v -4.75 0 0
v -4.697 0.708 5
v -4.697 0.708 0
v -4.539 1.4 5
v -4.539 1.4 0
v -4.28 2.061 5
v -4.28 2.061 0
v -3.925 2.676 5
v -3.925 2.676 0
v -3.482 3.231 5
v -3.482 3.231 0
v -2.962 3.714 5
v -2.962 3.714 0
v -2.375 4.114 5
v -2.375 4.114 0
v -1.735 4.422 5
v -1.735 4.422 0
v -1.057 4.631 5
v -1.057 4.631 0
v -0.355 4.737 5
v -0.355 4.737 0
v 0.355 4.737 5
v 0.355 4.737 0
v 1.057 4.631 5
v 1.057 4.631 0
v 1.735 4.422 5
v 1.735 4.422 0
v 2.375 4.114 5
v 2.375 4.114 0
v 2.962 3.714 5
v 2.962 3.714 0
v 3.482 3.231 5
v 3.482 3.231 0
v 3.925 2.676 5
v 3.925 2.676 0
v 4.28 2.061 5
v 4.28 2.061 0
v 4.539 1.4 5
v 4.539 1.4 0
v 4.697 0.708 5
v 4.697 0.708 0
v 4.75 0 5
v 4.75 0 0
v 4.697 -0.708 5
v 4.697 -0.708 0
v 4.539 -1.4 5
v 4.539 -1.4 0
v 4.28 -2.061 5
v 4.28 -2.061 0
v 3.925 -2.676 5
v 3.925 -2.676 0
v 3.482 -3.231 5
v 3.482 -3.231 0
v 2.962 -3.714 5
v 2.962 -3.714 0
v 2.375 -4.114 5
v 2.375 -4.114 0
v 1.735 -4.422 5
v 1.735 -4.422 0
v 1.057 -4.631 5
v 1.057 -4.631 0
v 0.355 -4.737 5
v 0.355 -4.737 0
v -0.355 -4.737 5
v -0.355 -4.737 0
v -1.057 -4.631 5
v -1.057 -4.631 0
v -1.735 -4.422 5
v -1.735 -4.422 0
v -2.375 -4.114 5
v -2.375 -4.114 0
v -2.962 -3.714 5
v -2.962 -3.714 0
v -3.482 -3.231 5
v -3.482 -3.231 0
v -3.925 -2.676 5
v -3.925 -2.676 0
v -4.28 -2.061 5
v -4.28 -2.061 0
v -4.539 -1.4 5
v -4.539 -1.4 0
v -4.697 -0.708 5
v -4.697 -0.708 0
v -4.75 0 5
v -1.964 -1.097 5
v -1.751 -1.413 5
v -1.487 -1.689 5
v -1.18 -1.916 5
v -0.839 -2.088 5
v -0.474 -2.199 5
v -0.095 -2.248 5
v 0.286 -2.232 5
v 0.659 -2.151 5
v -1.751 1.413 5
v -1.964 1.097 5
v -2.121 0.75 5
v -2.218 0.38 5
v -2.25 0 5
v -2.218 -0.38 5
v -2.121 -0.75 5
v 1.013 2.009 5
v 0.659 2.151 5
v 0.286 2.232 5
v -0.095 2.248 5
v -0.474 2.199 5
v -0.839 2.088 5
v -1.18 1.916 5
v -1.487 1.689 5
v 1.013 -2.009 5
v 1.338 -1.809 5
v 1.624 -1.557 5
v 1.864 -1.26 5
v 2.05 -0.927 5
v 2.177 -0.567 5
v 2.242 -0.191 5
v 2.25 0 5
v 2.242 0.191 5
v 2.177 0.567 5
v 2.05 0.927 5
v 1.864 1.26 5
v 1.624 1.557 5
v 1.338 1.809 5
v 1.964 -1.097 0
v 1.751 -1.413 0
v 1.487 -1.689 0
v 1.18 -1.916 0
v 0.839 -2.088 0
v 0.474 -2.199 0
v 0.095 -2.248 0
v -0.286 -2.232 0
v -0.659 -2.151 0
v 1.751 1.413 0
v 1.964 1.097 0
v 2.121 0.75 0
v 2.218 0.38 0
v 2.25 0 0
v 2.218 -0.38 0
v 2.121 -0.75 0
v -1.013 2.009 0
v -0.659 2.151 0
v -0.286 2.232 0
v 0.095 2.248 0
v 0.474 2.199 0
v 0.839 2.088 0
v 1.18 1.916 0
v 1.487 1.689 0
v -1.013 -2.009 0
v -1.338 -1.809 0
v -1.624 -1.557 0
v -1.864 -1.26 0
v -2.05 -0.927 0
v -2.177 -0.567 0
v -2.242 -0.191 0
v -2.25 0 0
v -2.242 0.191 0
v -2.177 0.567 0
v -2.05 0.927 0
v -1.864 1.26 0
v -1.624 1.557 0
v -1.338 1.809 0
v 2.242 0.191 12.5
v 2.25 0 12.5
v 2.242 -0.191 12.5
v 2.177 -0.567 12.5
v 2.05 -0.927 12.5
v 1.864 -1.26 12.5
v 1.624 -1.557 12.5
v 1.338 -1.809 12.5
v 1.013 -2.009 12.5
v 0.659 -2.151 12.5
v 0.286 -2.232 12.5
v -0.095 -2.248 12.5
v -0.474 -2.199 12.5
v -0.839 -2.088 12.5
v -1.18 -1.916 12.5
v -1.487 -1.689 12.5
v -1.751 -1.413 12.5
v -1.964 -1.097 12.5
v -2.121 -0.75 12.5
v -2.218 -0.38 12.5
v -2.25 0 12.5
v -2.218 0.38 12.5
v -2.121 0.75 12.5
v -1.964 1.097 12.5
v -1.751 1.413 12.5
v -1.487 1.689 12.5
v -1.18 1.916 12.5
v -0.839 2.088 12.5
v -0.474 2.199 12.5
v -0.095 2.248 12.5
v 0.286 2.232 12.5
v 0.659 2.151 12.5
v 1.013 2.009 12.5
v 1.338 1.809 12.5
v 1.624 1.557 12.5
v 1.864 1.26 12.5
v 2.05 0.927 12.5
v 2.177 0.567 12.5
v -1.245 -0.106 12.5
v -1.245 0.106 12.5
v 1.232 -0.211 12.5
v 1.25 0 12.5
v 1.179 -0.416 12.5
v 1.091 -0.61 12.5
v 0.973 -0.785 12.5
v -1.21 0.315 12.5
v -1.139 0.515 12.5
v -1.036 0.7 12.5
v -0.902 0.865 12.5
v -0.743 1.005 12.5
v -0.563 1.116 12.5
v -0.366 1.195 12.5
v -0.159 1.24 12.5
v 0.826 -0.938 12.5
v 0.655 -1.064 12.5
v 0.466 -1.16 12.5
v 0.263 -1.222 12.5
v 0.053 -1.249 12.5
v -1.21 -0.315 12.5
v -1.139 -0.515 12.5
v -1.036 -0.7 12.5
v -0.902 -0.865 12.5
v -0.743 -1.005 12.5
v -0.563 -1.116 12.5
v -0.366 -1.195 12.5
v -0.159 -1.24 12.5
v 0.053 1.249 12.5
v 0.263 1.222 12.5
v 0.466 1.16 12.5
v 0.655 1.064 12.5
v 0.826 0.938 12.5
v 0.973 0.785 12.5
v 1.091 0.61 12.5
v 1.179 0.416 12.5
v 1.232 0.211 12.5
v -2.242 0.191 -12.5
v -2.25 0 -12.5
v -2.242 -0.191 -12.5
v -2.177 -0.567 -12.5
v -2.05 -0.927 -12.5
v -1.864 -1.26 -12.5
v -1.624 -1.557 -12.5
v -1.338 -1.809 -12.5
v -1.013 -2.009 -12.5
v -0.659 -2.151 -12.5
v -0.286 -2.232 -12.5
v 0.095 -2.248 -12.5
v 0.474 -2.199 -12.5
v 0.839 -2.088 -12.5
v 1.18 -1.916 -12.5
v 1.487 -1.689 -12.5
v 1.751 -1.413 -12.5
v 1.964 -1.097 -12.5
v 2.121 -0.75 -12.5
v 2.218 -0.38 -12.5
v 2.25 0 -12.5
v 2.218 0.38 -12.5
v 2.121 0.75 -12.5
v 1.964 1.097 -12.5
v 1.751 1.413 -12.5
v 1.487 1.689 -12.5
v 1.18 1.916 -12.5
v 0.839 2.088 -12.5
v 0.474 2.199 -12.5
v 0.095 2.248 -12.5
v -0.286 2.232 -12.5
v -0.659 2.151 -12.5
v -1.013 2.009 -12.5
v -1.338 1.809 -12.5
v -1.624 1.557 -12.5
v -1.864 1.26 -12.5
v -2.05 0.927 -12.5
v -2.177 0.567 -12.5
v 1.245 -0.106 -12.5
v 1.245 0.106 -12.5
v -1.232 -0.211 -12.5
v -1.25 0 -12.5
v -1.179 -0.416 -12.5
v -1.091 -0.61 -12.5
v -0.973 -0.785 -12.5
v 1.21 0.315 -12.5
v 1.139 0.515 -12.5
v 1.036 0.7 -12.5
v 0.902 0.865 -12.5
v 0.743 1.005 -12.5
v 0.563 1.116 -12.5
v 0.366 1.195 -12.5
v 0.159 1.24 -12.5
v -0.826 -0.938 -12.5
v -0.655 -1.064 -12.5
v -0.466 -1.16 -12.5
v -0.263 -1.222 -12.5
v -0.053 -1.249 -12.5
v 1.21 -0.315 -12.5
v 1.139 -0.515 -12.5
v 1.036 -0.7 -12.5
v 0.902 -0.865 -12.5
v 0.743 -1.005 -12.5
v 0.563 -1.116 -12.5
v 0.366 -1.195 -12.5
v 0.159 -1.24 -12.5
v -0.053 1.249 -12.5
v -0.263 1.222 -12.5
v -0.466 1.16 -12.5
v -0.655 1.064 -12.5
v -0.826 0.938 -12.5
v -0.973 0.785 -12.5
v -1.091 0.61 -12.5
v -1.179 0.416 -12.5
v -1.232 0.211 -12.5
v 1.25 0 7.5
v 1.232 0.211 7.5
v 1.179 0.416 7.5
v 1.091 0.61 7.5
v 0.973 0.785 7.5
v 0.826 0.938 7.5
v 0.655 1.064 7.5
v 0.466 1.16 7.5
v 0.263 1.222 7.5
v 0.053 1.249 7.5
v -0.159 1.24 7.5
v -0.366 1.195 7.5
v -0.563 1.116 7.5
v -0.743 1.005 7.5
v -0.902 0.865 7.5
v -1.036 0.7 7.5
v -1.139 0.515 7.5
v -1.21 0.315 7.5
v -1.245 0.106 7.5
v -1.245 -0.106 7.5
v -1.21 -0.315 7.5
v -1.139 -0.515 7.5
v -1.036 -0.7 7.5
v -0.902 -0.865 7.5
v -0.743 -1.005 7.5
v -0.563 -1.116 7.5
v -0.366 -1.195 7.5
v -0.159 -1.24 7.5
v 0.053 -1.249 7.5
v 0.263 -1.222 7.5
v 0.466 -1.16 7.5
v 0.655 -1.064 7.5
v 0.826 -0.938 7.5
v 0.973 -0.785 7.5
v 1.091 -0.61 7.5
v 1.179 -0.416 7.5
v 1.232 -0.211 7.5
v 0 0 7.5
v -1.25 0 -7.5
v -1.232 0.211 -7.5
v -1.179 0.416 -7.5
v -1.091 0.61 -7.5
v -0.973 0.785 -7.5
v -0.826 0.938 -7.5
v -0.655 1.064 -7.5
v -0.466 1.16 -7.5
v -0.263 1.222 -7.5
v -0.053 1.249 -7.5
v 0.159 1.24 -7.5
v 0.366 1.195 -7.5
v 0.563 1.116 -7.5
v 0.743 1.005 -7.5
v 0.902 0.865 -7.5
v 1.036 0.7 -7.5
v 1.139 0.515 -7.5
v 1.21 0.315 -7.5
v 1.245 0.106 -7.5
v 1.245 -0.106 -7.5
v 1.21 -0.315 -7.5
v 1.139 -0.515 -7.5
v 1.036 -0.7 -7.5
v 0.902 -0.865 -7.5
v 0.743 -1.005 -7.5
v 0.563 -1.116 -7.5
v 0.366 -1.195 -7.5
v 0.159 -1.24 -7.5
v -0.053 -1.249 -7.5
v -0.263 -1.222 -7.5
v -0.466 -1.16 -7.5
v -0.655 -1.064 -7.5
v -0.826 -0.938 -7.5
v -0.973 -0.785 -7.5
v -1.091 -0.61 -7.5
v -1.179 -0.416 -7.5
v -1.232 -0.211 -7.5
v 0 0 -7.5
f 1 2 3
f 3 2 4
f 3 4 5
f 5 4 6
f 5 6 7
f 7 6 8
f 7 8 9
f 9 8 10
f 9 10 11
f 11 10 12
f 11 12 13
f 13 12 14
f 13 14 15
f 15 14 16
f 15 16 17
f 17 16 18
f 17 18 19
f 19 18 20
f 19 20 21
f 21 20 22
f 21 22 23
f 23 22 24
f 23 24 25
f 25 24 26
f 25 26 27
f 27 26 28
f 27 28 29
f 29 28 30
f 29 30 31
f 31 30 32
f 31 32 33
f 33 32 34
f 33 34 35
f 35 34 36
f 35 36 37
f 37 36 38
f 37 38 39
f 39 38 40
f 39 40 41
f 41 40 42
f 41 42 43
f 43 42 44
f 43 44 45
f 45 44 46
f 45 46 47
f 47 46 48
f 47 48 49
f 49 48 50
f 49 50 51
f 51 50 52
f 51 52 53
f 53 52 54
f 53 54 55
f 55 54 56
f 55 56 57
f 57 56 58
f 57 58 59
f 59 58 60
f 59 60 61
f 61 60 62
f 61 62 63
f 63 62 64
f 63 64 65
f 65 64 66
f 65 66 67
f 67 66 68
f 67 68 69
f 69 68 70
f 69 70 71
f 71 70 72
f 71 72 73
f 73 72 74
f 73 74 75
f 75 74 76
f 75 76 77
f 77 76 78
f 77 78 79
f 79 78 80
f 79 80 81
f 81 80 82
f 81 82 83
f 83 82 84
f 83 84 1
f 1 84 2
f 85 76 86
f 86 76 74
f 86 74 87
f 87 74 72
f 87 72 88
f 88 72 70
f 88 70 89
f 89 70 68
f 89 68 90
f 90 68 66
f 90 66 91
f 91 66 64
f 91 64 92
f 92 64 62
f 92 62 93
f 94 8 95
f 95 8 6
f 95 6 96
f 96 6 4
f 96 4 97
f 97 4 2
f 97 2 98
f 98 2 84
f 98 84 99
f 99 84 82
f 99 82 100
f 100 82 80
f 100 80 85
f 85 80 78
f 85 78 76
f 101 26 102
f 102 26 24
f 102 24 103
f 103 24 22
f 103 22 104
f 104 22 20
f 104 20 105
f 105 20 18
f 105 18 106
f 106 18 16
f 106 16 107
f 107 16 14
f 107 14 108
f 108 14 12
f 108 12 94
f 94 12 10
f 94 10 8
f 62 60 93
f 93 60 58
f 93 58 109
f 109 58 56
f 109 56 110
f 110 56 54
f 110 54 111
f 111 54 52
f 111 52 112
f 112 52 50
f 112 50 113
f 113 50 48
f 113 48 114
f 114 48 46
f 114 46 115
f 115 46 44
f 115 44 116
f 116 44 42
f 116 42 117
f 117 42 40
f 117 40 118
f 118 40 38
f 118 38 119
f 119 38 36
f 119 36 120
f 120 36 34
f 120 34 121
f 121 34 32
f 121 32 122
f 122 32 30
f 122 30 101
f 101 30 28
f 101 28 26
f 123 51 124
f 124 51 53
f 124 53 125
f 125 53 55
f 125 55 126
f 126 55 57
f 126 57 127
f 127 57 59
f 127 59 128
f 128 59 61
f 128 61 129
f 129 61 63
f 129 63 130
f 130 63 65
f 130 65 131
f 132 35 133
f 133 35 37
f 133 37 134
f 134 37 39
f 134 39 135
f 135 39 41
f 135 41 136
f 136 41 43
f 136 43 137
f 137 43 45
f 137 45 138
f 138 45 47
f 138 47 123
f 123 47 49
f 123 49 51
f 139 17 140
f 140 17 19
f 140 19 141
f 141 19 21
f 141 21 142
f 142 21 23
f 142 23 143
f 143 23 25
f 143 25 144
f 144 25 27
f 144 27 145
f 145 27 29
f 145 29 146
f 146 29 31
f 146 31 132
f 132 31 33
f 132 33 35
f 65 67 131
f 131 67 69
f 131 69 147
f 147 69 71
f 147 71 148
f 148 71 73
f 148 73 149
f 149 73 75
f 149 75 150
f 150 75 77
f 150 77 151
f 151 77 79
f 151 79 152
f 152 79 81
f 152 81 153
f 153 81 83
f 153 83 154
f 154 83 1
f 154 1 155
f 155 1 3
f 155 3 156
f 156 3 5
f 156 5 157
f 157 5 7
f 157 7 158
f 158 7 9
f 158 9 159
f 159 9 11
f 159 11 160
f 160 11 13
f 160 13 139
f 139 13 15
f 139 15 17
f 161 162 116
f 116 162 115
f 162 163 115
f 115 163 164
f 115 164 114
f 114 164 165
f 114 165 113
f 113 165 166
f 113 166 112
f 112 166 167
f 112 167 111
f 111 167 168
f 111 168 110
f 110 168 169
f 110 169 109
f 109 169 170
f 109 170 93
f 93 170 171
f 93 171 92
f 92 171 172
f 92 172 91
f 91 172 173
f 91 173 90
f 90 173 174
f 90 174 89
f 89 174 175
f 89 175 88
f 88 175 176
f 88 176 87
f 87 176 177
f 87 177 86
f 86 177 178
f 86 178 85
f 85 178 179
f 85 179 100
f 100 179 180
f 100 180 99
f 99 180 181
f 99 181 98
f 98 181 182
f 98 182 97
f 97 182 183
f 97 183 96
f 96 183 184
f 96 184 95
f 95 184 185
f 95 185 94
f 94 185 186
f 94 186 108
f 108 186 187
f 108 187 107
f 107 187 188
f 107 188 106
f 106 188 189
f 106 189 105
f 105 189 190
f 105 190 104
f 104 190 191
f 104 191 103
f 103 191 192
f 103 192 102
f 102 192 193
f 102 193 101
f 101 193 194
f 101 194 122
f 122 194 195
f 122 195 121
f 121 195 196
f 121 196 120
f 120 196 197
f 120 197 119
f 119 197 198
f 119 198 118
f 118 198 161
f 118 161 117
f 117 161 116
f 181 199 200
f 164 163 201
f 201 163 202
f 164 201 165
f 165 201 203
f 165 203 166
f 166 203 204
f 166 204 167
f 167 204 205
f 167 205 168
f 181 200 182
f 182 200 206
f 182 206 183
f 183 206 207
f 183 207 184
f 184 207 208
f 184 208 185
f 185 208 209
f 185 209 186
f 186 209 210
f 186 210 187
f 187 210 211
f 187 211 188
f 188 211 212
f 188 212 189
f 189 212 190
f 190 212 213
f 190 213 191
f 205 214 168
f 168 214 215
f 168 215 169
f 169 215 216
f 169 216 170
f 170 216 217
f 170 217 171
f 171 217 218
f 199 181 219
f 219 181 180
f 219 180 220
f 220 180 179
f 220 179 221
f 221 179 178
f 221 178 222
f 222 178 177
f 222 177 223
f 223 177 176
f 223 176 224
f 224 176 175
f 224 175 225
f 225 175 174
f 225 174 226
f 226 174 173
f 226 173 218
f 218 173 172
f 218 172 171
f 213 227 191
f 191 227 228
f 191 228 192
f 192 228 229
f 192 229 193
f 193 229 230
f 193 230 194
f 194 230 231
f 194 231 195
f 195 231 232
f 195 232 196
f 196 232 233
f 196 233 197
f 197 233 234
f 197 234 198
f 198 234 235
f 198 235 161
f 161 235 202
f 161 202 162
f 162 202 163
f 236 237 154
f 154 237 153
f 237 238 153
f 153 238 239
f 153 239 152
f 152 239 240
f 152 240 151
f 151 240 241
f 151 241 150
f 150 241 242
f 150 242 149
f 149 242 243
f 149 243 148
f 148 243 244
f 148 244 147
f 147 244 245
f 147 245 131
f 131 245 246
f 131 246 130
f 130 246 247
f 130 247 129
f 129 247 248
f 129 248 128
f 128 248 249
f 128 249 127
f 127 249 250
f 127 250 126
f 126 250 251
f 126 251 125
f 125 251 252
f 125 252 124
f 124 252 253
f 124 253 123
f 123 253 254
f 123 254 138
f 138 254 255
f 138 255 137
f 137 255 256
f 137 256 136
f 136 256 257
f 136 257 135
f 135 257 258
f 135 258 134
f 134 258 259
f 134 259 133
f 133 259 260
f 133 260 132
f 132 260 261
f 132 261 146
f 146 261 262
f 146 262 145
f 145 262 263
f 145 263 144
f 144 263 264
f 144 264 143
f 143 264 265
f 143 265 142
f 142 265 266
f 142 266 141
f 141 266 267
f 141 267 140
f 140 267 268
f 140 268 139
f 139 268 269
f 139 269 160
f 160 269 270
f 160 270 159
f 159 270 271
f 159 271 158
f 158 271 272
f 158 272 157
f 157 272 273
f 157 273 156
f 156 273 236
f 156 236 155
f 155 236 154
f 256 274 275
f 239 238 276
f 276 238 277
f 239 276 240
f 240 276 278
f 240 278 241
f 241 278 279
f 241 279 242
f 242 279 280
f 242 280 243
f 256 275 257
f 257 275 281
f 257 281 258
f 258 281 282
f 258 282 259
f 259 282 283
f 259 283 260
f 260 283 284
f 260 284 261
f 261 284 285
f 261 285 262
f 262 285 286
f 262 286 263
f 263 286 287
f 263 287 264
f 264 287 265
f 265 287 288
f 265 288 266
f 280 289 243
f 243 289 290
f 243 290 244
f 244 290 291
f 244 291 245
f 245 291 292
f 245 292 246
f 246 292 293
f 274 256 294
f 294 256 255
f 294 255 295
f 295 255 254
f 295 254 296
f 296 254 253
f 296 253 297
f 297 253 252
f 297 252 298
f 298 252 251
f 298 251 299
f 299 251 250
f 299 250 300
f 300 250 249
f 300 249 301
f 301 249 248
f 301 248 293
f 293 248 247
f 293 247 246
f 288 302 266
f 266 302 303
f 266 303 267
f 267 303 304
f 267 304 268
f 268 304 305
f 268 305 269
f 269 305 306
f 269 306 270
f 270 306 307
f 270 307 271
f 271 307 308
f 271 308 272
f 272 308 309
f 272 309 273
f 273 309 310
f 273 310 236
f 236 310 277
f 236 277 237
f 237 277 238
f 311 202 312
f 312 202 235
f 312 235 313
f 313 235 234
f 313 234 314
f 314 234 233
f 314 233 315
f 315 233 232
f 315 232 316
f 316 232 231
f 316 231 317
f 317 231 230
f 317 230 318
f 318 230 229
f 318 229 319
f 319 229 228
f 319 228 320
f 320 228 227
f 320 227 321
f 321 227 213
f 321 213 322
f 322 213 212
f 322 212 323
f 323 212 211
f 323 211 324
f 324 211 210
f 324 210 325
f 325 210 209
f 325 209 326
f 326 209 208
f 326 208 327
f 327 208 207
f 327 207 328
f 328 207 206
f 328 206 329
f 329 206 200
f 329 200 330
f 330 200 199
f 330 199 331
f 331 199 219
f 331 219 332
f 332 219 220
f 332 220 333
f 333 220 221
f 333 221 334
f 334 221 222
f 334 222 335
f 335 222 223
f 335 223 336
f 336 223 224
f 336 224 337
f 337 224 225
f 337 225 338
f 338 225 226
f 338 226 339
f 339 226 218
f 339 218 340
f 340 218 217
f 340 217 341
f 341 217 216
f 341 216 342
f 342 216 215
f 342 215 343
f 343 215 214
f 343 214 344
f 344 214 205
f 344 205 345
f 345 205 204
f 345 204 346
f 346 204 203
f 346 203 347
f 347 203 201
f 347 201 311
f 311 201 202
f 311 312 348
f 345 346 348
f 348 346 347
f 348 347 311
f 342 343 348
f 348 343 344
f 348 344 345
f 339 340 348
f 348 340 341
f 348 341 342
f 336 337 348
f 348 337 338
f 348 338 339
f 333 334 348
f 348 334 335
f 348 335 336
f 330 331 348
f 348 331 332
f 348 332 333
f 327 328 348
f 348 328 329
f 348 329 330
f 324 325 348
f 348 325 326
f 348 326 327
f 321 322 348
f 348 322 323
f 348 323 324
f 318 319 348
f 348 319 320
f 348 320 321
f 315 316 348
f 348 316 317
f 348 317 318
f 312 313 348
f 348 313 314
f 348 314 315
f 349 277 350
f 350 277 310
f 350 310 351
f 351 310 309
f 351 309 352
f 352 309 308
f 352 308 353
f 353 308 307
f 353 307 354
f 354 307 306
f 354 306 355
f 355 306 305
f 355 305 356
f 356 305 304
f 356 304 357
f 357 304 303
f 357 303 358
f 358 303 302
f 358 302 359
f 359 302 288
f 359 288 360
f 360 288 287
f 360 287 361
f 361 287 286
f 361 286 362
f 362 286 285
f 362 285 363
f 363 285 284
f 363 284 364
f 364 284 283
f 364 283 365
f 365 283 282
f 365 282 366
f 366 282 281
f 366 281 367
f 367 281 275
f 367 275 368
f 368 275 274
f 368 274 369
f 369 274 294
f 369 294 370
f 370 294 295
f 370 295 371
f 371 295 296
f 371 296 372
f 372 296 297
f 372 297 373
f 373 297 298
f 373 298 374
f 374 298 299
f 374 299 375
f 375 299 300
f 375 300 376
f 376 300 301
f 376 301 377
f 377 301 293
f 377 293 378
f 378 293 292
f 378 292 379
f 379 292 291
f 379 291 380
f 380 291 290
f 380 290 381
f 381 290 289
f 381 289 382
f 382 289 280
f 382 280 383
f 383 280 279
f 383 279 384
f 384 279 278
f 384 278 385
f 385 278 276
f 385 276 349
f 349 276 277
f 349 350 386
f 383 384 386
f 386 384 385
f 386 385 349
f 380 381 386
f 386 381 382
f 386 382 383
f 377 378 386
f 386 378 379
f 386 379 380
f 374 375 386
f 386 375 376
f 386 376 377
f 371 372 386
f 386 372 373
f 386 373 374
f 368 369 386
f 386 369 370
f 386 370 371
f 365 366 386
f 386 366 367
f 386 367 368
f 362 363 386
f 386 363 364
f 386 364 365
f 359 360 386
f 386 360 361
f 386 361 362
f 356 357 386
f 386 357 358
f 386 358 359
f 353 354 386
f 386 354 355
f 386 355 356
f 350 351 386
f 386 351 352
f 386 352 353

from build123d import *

# Parameters (mm, degrees)
SKETCH1_R           = 4.75
BOSS_EXTRUDE1_DEPTH = 5
SKETCH2_R           = 2.25
BOSS_EXTRUDE2_DEPTH = 7.5
BOSS_EXTRUDE3_START = 12.5
SKETCH3_R           = 2.25
BOSS_EXTRUDE3_DEPTH = 12.5
SKETCH4_R           = 1.25
CUT_EXTRUDE1_DEPTH  = 5
CUT_EXTRUDE2_START  = -5
SKETCH5_R           = 1.25
CUT_EXTRUDE2_DEPTH  = 5


with BuildPart() as part:
    # Sketch1 → Boss-Extrude1 (new body)
    with BuildSketch(Plane.XY):
        Circle(SKETCH1_R)
    extrude(amount=BOSS_EXTRUDE1_DEPTH)

    # Sketch2 → Boss-Extrude2 (add)
    with BuildSketch(Plane.XY.offset(5)):
        Circle(SKETCH2_R)
    extrude(amount=BOSS_EXTRUDE2_DEPTH)

    # Sketch3 → Boss-Extrude3 (add)
    with BuildSketch(Plane(origin=(0, 0, 0), x_dir=(-1, 0, 0), z_dir=(0, 0, -1)).offset(BOSS_EXTRUDE3_START)):
        with Locations(Location((0, 0, 0), (0, 0, 180))):
            Circle(SKETCH3_R)
    extrude(amount=-BOSS_EXTRUDE3_DEPTH)

    # Sketch4 → Cut-Extrude1 (cut)
    with BuildSketch(Plane.XY.offset(12.5)):
        Circle(SKETCH4_R)
    extrude(amount=-CUT_EXTRUDE1_DEPTH, mode=Mode.SUBTRACT)

    # Sketch5 → Cut-Extrude2 (cut)
    with BuildSketch(Plane(origin=(0, 0, -12.5), x_dir=(-1, 0, 0), z_dir=(0, 0, -1)).offset(CUT_EXTRUDE2_START)):
        with Locations(Location((0, 0, 0), (0, 0, 180))):
            Circle(SKETCH5_R)
    extrude(amount=CUT_EXTRUDE2_DEPTH, mode=Mode.SUBTRACT)


solid = part.part
